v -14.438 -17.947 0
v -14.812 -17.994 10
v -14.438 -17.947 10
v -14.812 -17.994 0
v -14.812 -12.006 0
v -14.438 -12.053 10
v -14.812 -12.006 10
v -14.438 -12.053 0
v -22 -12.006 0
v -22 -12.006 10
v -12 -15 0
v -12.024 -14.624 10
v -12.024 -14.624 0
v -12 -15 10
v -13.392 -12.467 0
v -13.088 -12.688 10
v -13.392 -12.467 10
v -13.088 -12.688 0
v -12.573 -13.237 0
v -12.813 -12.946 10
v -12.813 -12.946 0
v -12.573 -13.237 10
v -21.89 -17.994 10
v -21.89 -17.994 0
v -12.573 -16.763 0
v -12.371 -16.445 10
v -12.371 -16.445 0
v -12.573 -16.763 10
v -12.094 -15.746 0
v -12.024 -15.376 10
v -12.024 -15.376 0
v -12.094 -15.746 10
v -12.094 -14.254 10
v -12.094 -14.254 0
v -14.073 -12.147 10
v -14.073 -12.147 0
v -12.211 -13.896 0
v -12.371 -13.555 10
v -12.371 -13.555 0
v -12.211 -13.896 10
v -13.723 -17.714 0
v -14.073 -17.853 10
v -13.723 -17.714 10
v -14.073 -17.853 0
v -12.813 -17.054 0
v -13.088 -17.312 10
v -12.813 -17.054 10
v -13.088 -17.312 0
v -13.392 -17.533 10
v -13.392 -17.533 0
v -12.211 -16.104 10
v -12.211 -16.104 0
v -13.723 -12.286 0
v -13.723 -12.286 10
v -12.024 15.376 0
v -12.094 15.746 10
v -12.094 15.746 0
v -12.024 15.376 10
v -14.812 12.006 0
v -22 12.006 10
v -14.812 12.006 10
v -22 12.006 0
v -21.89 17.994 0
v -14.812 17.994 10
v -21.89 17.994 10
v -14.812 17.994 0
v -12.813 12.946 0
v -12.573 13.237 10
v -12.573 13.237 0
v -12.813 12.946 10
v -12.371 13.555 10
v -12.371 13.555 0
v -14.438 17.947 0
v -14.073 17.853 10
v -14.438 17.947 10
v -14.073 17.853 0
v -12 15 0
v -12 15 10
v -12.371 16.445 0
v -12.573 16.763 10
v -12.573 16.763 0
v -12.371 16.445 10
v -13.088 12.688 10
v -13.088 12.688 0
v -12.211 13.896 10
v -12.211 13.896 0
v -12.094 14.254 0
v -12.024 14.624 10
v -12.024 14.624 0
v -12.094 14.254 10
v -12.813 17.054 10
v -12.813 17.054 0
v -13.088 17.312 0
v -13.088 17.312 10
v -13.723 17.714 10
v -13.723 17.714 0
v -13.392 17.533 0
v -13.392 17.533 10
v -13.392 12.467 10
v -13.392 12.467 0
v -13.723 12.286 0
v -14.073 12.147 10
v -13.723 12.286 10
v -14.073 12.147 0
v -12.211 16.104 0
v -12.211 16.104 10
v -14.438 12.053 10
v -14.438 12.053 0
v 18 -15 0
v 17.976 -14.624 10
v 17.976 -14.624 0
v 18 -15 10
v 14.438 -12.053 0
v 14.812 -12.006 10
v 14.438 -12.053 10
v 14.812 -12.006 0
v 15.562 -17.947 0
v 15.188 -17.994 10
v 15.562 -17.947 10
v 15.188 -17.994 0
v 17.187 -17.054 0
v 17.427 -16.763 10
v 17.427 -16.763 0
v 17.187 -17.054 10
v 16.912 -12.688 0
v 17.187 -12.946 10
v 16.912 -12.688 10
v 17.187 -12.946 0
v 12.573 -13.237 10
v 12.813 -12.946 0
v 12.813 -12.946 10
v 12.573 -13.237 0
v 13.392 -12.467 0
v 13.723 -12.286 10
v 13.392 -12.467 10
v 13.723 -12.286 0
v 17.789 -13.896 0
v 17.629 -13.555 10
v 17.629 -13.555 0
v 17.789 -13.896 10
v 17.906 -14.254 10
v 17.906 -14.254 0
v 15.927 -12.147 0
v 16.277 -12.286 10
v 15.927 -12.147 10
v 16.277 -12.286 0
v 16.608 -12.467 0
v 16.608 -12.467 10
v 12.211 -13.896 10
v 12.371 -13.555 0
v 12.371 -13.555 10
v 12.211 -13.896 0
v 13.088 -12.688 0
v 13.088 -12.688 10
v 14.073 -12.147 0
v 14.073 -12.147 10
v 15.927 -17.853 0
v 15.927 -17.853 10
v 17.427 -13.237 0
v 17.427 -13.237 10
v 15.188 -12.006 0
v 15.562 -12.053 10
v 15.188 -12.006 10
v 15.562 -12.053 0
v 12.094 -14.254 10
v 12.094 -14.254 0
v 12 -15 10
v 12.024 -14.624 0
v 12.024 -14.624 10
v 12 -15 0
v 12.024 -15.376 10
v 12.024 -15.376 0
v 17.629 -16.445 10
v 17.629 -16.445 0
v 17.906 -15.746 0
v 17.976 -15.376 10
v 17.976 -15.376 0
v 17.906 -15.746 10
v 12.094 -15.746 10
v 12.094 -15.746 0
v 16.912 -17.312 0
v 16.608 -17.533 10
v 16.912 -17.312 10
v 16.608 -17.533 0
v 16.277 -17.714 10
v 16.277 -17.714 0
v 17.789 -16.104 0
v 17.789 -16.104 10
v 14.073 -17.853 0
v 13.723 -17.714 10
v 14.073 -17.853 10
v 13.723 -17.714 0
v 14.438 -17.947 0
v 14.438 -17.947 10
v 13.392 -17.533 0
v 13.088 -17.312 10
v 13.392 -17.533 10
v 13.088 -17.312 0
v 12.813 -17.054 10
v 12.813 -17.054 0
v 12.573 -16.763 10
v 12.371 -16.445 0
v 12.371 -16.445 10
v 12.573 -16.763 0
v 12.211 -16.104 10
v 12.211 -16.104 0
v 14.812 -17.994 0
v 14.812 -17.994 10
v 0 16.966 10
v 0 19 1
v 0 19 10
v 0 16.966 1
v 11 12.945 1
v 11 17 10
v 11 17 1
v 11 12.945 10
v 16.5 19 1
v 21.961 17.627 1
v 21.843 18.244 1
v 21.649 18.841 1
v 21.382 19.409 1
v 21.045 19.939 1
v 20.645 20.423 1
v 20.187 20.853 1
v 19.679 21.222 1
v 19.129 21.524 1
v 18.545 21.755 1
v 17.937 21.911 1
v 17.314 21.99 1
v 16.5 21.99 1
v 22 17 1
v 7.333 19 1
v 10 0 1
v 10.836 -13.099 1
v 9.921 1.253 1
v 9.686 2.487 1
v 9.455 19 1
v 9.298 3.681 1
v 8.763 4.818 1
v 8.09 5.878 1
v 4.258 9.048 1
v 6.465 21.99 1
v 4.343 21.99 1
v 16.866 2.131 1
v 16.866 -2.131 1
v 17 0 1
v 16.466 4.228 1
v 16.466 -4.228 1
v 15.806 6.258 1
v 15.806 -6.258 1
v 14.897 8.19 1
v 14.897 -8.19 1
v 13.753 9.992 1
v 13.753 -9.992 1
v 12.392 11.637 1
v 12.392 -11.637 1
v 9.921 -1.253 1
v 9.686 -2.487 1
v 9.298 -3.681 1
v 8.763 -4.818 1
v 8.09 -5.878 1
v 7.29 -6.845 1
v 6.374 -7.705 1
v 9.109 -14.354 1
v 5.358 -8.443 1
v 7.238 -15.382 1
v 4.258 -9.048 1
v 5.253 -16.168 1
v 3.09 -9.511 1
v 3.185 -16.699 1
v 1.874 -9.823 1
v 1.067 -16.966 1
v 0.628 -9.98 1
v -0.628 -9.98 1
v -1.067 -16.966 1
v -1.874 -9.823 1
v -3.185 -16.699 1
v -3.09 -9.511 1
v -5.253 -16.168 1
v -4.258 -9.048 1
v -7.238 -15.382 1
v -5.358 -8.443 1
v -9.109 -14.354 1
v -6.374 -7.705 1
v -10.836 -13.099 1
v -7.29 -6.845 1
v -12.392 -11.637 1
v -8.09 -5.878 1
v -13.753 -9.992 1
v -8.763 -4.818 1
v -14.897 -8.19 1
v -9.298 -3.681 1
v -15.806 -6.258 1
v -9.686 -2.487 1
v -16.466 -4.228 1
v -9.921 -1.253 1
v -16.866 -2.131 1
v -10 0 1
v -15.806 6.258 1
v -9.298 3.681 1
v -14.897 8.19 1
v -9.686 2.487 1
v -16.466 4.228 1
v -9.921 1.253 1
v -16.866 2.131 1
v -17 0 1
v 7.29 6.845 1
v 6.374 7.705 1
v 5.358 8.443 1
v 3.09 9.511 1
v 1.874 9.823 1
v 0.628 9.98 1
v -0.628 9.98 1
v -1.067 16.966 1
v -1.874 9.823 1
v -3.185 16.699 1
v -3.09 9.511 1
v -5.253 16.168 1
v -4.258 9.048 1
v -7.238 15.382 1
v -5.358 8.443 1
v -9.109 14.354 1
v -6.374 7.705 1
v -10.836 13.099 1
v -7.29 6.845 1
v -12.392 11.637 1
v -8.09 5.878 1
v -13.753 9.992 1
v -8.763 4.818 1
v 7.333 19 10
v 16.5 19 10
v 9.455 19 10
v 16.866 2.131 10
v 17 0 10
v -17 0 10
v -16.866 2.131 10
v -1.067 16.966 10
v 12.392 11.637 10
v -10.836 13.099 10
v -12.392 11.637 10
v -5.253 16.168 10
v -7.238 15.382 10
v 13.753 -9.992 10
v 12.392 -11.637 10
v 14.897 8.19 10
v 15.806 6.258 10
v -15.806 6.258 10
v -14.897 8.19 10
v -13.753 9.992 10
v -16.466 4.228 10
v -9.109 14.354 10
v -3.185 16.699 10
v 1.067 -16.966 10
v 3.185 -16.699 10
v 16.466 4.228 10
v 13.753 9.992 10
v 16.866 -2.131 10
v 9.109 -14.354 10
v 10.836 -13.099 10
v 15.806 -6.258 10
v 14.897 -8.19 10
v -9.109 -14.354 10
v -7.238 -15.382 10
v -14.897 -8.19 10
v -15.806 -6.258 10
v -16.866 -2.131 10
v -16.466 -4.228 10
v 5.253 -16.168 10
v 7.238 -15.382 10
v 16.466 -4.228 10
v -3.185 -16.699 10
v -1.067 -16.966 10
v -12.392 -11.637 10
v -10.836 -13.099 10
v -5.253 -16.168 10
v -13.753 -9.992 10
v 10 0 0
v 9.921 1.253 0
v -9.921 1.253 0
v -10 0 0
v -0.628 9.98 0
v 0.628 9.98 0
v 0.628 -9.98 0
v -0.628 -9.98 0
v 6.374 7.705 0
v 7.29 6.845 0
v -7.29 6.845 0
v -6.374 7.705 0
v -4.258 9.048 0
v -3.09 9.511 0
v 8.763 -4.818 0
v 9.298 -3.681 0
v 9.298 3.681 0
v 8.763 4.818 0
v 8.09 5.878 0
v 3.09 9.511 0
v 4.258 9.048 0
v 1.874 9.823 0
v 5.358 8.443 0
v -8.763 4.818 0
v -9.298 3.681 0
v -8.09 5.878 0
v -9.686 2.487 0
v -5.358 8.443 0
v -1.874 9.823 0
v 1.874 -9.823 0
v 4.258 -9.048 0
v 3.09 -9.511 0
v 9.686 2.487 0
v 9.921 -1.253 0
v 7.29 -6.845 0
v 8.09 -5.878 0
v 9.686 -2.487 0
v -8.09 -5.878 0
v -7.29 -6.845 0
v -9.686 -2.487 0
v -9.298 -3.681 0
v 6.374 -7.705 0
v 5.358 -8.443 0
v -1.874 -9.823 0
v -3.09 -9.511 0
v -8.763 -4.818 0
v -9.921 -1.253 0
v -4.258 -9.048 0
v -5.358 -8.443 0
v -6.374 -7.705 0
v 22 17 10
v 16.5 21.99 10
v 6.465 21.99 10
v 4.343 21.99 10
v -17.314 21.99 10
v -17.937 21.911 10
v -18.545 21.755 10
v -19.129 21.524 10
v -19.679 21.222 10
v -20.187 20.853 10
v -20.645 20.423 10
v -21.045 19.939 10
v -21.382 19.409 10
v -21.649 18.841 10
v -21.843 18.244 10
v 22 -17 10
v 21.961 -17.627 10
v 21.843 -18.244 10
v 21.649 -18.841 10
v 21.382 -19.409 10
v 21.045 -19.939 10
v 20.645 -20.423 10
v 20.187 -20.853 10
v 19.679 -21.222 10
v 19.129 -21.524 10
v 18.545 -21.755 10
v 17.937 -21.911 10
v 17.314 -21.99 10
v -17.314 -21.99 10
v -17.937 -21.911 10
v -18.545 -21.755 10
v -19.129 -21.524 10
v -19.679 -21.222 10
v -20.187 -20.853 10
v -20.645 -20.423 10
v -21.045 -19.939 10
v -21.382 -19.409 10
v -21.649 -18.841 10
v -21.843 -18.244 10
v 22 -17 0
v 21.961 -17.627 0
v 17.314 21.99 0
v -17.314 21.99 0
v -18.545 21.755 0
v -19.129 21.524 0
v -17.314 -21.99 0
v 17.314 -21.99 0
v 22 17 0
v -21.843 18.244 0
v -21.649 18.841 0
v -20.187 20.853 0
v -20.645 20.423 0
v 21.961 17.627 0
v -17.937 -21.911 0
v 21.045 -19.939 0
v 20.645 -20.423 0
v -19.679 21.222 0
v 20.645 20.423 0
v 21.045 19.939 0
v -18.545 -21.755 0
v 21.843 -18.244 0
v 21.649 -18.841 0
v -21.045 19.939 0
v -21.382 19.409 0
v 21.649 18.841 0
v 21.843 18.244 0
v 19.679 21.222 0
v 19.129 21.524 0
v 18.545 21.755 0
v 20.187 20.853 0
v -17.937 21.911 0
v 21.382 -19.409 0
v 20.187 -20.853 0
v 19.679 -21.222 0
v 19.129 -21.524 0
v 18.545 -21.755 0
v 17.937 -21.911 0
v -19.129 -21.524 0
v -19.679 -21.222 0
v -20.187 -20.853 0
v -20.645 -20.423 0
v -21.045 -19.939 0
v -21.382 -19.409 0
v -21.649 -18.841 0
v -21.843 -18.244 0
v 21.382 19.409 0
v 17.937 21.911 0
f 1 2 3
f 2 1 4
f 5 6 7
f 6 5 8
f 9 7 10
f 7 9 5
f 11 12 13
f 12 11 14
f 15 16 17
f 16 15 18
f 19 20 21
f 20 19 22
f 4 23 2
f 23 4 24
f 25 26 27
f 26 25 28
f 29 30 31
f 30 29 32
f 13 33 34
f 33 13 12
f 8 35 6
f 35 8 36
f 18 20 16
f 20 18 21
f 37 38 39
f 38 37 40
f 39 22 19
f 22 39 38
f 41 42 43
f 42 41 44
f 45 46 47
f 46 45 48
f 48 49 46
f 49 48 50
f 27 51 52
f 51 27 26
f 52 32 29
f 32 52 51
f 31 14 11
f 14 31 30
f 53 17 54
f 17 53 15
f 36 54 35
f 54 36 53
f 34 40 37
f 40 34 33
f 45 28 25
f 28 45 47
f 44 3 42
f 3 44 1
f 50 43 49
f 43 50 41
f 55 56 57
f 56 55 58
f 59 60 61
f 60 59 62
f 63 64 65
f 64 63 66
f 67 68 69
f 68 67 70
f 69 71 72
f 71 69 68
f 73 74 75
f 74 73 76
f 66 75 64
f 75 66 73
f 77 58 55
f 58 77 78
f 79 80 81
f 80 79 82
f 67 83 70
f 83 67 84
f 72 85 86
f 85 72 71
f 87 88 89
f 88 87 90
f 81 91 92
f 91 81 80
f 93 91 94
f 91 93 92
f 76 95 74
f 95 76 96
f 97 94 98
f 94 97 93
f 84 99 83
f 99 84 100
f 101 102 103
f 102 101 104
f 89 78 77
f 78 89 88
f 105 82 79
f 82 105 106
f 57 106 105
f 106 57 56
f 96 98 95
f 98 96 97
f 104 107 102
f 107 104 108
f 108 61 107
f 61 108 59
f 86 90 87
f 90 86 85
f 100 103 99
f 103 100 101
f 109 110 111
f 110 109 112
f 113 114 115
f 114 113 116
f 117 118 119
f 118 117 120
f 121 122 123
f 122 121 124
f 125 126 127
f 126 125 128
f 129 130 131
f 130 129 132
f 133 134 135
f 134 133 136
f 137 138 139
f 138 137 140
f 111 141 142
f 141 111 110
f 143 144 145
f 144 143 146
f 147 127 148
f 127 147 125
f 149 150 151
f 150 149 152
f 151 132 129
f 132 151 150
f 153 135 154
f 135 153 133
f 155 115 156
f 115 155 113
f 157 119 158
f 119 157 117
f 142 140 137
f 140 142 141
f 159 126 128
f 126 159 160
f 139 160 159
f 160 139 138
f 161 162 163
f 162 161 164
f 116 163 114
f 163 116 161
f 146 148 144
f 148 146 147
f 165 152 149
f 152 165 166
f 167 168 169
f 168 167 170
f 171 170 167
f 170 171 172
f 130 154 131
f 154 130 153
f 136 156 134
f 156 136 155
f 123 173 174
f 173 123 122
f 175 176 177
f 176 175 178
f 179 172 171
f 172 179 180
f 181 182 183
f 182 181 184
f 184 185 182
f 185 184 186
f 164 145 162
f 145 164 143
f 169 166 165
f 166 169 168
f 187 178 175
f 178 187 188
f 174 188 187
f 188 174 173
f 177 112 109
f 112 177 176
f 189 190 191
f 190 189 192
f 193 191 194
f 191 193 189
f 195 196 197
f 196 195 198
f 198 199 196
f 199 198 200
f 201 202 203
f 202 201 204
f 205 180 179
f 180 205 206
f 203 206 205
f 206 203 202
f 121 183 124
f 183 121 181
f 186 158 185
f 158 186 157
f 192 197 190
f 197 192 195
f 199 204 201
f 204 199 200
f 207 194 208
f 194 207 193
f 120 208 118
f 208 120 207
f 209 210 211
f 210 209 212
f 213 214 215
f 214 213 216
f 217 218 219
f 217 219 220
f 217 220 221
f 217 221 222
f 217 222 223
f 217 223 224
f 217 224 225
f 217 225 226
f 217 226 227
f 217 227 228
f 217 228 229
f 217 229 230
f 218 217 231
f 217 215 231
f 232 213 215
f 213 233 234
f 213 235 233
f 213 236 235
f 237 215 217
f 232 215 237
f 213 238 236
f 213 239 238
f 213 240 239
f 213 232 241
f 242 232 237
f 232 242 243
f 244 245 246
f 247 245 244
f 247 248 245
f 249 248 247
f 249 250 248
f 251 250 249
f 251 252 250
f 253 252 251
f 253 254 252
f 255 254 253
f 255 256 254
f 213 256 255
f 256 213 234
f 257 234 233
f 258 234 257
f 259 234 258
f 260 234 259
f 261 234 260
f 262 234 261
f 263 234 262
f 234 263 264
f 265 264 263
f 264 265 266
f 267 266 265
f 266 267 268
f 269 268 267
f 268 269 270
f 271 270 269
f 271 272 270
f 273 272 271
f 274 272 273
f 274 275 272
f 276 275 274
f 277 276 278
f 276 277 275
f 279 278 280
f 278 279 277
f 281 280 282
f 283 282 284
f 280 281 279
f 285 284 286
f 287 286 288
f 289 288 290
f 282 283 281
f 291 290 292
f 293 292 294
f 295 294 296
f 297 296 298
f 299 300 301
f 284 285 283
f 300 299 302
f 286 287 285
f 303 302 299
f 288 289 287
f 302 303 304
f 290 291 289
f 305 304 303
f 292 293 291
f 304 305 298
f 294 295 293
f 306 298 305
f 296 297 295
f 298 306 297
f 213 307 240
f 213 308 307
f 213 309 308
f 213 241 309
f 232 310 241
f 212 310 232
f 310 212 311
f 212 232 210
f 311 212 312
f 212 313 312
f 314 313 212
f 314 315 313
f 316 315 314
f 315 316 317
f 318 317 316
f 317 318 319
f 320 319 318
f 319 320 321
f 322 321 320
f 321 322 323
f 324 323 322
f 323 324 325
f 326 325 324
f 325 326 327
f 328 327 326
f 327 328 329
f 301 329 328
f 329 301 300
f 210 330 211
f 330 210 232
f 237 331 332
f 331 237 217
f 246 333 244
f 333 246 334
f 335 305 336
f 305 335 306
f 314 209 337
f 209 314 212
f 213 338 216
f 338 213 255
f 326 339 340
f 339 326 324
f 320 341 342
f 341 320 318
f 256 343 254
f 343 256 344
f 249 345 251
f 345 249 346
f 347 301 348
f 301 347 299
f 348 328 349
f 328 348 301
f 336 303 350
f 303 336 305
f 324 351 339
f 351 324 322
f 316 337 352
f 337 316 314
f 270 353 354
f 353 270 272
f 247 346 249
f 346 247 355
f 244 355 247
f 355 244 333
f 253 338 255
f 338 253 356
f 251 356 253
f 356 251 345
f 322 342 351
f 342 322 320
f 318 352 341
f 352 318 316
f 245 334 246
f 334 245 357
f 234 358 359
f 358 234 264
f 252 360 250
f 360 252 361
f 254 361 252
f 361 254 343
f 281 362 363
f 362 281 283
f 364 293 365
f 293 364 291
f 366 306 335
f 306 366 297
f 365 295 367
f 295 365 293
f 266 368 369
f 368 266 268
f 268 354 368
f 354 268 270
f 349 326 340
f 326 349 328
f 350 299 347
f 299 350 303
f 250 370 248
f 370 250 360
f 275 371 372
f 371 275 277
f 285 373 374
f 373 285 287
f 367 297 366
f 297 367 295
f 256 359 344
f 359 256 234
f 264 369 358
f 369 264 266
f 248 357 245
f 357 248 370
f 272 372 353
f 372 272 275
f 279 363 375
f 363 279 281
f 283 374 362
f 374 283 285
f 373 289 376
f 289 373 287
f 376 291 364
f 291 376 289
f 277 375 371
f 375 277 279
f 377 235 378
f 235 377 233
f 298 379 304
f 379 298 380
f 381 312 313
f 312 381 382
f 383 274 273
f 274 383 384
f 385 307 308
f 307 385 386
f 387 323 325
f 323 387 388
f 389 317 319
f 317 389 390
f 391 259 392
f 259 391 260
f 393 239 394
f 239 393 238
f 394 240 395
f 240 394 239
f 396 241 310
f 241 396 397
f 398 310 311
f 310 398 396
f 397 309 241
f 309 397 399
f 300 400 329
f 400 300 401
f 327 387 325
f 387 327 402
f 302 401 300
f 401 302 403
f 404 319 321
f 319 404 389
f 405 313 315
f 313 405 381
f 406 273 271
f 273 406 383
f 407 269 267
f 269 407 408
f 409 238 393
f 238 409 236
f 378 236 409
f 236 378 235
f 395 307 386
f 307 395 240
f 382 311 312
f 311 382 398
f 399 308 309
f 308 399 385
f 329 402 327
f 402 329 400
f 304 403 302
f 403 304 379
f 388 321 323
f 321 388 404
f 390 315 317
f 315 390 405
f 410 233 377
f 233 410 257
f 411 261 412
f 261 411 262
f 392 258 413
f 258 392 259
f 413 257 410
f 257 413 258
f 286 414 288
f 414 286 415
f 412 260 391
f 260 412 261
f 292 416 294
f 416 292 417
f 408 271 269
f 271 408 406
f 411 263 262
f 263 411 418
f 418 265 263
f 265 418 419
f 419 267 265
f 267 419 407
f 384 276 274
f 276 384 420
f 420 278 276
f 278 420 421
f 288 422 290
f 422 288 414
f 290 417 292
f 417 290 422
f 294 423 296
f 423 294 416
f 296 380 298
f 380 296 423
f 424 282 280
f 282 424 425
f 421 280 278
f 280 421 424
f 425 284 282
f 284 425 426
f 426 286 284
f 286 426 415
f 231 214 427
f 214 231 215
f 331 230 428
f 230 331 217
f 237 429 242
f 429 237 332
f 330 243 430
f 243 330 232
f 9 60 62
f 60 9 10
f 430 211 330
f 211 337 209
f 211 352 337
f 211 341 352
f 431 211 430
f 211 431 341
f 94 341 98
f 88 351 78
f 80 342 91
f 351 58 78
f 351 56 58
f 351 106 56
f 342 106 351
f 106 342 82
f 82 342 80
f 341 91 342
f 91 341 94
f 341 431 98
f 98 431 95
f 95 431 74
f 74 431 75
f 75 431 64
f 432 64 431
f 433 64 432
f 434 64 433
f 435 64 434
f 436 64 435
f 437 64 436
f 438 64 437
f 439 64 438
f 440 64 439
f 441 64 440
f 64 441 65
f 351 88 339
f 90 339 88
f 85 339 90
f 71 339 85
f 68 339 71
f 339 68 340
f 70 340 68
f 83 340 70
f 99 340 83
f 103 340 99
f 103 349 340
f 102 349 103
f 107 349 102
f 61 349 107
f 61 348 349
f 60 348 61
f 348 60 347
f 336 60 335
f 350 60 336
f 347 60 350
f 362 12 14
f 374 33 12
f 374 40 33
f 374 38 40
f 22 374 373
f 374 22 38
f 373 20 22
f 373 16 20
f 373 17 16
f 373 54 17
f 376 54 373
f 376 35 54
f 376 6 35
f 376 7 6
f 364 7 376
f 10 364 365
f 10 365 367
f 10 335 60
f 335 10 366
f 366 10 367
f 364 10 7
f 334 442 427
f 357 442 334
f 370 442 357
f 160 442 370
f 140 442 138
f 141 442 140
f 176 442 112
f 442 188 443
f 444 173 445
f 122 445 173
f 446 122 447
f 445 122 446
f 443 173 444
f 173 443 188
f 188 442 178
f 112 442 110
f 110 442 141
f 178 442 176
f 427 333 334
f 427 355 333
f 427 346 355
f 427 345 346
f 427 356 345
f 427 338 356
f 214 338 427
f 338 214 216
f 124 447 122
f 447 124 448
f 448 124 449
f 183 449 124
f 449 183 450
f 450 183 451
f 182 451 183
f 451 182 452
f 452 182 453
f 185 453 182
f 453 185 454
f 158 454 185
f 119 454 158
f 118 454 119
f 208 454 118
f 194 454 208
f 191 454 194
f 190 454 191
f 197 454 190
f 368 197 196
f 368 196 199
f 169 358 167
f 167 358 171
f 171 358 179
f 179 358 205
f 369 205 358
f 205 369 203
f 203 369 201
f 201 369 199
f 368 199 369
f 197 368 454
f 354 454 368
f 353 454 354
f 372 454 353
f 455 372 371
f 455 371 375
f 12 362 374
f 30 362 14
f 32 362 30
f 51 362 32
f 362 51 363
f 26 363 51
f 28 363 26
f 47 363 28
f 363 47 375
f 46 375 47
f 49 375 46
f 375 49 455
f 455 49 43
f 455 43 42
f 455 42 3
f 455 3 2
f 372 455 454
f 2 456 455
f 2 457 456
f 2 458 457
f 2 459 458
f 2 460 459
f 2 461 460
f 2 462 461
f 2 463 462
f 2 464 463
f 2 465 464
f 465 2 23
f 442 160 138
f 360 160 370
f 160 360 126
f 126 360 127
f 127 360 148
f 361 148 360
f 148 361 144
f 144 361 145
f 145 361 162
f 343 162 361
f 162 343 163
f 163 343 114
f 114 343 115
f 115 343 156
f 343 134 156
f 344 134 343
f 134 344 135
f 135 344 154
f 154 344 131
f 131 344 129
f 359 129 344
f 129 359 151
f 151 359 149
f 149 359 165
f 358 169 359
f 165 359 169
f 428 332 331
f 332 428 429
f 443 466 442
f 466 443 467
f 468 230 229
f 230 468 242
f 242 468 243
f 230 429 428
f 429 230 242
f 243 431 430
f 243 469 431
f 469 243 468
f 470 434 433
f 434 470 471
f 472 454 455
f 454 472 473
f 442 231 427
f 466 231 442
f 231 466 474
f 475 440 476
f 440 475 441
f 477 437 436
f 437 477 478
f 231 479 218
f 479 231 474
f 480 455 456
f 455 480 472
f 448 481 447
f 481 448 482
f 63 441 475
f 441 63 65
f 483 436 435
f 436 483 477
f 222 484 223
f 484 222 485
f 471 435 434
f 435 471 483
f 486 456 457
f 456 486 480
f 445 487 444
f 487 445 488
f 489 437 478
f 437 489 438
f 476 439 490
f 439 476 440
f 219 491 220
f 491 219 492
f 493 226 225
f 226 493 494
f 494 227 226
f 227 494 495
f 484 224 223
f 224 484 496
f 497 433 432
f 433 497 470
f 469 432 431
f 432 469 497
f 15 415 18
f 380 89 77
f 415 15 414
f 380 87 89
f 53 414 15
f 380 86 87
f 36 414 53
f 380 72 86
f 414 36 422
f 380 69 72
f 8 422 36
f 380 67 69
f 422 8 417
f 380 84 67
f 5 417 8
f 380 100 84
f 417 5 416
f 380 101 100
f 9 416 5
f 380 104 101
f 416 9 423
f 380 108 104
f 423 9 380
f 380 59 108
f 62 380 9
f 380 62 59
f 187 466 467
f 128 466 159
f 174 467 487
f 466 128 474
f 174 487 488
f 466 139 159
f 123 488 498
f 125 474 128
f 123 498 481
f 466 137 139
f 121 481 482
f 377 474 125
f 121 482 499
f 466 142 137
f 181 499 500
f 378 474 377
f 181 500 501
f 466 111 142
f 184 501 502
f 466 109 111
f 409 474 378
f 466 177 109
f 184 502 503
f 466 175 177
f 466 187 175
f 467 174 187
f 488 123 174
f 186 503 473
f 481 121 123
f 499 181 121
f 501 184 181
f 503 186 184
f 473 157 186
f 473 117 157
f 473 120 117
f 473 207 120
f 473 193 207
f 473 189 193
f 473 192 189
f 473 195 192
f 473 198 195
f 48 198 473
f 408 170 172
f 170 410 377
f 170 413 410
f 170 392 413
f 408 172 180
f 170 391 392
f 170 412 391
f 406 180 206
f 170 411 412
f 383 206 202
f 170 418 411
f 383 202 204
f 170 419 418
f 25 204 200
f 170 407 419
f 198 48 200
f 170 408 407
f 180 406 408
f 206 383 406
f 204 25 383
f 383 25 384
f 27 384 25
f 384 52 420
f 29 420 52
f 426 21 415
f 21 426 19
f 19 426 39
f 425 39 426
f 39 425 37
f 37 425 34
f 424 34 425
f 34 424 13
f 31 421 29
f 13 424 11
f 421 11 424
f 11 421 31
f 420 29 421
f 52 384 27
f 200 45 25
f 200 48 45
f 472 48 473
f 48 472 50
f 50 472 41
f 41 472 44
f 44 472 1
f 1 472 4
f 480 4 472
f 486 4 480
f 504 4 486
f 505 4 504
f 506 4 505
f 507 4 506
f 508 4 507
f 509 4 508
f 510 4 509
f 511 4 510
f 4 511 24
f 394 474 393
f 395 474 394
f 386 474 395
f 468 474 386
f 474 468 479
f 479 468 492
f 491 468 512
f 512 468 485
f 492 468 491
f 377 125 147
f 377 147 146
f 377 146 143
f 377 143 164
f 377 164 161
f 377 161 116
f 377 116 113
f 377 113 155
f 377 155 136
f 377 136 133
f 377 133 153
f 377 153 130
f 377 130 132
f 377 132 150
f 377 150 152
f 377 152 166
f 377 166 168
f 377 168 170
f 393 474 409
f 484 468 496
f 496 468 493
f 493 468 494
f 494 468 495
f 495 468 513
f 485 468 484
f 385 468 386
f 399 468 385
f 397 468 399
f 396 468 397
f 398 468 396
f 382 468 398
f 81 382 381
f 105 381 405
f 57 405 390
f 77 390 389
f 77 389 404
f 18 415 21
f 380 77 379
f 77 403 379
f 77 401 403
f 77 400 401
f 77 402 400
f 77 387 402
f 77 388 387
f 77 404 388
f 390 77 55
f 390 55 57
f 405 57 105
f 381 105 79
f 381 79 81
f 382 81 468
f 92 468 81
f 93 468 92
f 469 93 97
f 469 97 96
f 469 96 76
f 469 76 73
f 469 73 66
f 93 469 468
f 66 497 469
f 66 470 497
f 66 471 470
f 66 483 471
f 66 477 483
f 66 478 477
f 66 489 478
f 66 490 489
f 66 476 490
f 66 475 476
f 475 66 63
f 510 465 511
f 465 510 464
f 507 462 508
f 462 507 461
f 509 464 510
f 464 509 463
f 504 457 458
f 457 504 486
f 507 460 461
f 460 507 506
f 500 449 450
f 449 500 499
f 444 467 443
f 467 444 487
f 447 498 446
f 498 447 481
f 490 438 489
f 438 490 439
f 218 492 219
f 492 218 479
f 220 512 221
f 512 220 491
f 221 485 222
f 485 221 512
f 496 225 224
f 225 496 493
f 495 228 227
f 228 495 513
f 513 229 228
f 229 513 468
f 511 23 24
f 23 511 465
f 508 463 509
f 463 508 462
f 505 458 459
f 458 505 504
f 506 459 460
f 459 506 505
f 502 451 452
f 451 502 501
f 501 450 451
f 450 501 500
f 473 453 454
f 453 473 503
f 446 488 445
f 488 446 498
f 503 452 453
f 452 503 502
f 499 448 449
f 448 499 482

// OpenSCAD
$fn = 50;


difference() {
	union() {
		translate(v = [0, 0, 0]) {
			rotate(a = [0, 0, 0]) {
				hull() {
					translate(v = [-17.0000000000, 17.0000000000, 0]) {
						rotate(a = [0, 0, 0]) {
							translate(v = [0, 0, 0]) {
								rotate(a = [0, 0, 0]) {
									cylinder(h = 10, r = 5);
								}
							}
						}
					}
					translate(v = [17.0000000000, 17.0000000000, 0]) {
						rotate(a = [0, 0, 0]) {
							translate(v = [0, 0, 0]) {
								rotate(a = [0, 0, 0]) {
									cylinder(h = 10, r = 5);
								}
							}
						}
					}
					translate(v = [-17.0000000000, -17.0000000000, 0]) {
						rotate(a = [0, 0, 0]) {
							translate(v = [0, 0, 0]) {
								rotate(a = [0, 0, 0]) {
									cylinder(h = 10, r = 5);
								}
							}
						}
					}
					translate(v = [17.0000000000, -17.0000000000, 0]) {
						rotate(a = [0, 0, 0]) {
							translate(v = [0, 0, 0]) {
								rotate(a = [0, 0, 0]) {
									cylinder(h = 10, r = 5);
								}
							}
						}
					}
				}
			}
		}
	}
	union() {
		translate(v = [-22.5000000000, -15.0000000000, -125]) {
			rotate(a = [0, 0, 0]) {
				hull() {
					translate(v = [7.5000000000, 0, 0]) {
						rotate(a = [0, 0, 0]) {
							translate(v = [0, 0, 0]) {
								rotate(a = [0, 0, 0]) {
									cylinder(h = 250, r = 3.0000000000);
								}
							}
						}
					}
					translate(v = [-7.5000000000, 0, 0]) {
						rotate(a = [0, 0, 0]) {
							translate(v = [0, 0, 0]) {
								rotate(a = [0, 0, 0]) {
									cylinder(h = 250, r = 3.0000000000);
								}
							}
						}
					}
				}
			}
		}
		translate(v = [-22.5000000000, 15.0000000000, -125]) {
			rotate(a = [0, 0, 0]) {
				hull() {
					translate(v = [7.5000000000, 0, 0]) {
						rotate(a = [0, 0, 0]) {
							translate(v = [0, 0, 0]) {
								rotate(a = [0, 0, 0]) {
									cylinder(h = 250, r = 3.0000000000);
								}
							}
						}
					}
					translate(v = [-7.5000000000, 0, 0]) {
						rotate(a = [0, 0, 0]) {
							translate(v = [0, 0, 0]) {
								rotate(a = [0, 0, 0]) {
									cylinder(h = 250, r = 3.0000000000);
								}
							}
						}
					}
				}
			}
		}
		translate(v = [15.0000000000, -15.0000000000, -125.0000000000]) {
			rotate(a = [0, 0, 0]) {
				cylinder(h = 250, r = 3.0000000000);
			}
		}
		translate(v = [0.0000000000, 11.0000000000, 1.0000000000]) {
			rotate(a = [0, 0, 0]) {
				cube(size = [11, 8, 12]);
			}
		}
		translate(v = [0, 0, 1.0000000000]) {
			rotate(a = [0, 0, 0]) {
				cylinder(h = 12, r = 17.0000000000);
			}
		}
		translate(v = [0, 0, -5.0000000000]) {
			rotate(a = [0, 0, 0]) {
				cylinder(h = 10, r = 10.0000000000);
			}
		}
		translate(v = [0.0000000000, 17.0000000000, 1]) {
			rotate(a = [0, 0, 0]) {
				cube(size = [22.0000000000, 2, 12]);
			}
		}
		translate(v = [16.5000000000, 17.0000000000, 1]) {
			rotate(a = [0, 0, 0]) {
				cube(size = [5.5000000000, 5, 12]);
			}
		}
		translate(v = [3.5833333333, 22.7500000000, 1]) {
			rotate(a = [0, 0, -45]) {
				cube(size = [7.5000000000, 1.5000000000, 12]);
			}
		}
	}
}
